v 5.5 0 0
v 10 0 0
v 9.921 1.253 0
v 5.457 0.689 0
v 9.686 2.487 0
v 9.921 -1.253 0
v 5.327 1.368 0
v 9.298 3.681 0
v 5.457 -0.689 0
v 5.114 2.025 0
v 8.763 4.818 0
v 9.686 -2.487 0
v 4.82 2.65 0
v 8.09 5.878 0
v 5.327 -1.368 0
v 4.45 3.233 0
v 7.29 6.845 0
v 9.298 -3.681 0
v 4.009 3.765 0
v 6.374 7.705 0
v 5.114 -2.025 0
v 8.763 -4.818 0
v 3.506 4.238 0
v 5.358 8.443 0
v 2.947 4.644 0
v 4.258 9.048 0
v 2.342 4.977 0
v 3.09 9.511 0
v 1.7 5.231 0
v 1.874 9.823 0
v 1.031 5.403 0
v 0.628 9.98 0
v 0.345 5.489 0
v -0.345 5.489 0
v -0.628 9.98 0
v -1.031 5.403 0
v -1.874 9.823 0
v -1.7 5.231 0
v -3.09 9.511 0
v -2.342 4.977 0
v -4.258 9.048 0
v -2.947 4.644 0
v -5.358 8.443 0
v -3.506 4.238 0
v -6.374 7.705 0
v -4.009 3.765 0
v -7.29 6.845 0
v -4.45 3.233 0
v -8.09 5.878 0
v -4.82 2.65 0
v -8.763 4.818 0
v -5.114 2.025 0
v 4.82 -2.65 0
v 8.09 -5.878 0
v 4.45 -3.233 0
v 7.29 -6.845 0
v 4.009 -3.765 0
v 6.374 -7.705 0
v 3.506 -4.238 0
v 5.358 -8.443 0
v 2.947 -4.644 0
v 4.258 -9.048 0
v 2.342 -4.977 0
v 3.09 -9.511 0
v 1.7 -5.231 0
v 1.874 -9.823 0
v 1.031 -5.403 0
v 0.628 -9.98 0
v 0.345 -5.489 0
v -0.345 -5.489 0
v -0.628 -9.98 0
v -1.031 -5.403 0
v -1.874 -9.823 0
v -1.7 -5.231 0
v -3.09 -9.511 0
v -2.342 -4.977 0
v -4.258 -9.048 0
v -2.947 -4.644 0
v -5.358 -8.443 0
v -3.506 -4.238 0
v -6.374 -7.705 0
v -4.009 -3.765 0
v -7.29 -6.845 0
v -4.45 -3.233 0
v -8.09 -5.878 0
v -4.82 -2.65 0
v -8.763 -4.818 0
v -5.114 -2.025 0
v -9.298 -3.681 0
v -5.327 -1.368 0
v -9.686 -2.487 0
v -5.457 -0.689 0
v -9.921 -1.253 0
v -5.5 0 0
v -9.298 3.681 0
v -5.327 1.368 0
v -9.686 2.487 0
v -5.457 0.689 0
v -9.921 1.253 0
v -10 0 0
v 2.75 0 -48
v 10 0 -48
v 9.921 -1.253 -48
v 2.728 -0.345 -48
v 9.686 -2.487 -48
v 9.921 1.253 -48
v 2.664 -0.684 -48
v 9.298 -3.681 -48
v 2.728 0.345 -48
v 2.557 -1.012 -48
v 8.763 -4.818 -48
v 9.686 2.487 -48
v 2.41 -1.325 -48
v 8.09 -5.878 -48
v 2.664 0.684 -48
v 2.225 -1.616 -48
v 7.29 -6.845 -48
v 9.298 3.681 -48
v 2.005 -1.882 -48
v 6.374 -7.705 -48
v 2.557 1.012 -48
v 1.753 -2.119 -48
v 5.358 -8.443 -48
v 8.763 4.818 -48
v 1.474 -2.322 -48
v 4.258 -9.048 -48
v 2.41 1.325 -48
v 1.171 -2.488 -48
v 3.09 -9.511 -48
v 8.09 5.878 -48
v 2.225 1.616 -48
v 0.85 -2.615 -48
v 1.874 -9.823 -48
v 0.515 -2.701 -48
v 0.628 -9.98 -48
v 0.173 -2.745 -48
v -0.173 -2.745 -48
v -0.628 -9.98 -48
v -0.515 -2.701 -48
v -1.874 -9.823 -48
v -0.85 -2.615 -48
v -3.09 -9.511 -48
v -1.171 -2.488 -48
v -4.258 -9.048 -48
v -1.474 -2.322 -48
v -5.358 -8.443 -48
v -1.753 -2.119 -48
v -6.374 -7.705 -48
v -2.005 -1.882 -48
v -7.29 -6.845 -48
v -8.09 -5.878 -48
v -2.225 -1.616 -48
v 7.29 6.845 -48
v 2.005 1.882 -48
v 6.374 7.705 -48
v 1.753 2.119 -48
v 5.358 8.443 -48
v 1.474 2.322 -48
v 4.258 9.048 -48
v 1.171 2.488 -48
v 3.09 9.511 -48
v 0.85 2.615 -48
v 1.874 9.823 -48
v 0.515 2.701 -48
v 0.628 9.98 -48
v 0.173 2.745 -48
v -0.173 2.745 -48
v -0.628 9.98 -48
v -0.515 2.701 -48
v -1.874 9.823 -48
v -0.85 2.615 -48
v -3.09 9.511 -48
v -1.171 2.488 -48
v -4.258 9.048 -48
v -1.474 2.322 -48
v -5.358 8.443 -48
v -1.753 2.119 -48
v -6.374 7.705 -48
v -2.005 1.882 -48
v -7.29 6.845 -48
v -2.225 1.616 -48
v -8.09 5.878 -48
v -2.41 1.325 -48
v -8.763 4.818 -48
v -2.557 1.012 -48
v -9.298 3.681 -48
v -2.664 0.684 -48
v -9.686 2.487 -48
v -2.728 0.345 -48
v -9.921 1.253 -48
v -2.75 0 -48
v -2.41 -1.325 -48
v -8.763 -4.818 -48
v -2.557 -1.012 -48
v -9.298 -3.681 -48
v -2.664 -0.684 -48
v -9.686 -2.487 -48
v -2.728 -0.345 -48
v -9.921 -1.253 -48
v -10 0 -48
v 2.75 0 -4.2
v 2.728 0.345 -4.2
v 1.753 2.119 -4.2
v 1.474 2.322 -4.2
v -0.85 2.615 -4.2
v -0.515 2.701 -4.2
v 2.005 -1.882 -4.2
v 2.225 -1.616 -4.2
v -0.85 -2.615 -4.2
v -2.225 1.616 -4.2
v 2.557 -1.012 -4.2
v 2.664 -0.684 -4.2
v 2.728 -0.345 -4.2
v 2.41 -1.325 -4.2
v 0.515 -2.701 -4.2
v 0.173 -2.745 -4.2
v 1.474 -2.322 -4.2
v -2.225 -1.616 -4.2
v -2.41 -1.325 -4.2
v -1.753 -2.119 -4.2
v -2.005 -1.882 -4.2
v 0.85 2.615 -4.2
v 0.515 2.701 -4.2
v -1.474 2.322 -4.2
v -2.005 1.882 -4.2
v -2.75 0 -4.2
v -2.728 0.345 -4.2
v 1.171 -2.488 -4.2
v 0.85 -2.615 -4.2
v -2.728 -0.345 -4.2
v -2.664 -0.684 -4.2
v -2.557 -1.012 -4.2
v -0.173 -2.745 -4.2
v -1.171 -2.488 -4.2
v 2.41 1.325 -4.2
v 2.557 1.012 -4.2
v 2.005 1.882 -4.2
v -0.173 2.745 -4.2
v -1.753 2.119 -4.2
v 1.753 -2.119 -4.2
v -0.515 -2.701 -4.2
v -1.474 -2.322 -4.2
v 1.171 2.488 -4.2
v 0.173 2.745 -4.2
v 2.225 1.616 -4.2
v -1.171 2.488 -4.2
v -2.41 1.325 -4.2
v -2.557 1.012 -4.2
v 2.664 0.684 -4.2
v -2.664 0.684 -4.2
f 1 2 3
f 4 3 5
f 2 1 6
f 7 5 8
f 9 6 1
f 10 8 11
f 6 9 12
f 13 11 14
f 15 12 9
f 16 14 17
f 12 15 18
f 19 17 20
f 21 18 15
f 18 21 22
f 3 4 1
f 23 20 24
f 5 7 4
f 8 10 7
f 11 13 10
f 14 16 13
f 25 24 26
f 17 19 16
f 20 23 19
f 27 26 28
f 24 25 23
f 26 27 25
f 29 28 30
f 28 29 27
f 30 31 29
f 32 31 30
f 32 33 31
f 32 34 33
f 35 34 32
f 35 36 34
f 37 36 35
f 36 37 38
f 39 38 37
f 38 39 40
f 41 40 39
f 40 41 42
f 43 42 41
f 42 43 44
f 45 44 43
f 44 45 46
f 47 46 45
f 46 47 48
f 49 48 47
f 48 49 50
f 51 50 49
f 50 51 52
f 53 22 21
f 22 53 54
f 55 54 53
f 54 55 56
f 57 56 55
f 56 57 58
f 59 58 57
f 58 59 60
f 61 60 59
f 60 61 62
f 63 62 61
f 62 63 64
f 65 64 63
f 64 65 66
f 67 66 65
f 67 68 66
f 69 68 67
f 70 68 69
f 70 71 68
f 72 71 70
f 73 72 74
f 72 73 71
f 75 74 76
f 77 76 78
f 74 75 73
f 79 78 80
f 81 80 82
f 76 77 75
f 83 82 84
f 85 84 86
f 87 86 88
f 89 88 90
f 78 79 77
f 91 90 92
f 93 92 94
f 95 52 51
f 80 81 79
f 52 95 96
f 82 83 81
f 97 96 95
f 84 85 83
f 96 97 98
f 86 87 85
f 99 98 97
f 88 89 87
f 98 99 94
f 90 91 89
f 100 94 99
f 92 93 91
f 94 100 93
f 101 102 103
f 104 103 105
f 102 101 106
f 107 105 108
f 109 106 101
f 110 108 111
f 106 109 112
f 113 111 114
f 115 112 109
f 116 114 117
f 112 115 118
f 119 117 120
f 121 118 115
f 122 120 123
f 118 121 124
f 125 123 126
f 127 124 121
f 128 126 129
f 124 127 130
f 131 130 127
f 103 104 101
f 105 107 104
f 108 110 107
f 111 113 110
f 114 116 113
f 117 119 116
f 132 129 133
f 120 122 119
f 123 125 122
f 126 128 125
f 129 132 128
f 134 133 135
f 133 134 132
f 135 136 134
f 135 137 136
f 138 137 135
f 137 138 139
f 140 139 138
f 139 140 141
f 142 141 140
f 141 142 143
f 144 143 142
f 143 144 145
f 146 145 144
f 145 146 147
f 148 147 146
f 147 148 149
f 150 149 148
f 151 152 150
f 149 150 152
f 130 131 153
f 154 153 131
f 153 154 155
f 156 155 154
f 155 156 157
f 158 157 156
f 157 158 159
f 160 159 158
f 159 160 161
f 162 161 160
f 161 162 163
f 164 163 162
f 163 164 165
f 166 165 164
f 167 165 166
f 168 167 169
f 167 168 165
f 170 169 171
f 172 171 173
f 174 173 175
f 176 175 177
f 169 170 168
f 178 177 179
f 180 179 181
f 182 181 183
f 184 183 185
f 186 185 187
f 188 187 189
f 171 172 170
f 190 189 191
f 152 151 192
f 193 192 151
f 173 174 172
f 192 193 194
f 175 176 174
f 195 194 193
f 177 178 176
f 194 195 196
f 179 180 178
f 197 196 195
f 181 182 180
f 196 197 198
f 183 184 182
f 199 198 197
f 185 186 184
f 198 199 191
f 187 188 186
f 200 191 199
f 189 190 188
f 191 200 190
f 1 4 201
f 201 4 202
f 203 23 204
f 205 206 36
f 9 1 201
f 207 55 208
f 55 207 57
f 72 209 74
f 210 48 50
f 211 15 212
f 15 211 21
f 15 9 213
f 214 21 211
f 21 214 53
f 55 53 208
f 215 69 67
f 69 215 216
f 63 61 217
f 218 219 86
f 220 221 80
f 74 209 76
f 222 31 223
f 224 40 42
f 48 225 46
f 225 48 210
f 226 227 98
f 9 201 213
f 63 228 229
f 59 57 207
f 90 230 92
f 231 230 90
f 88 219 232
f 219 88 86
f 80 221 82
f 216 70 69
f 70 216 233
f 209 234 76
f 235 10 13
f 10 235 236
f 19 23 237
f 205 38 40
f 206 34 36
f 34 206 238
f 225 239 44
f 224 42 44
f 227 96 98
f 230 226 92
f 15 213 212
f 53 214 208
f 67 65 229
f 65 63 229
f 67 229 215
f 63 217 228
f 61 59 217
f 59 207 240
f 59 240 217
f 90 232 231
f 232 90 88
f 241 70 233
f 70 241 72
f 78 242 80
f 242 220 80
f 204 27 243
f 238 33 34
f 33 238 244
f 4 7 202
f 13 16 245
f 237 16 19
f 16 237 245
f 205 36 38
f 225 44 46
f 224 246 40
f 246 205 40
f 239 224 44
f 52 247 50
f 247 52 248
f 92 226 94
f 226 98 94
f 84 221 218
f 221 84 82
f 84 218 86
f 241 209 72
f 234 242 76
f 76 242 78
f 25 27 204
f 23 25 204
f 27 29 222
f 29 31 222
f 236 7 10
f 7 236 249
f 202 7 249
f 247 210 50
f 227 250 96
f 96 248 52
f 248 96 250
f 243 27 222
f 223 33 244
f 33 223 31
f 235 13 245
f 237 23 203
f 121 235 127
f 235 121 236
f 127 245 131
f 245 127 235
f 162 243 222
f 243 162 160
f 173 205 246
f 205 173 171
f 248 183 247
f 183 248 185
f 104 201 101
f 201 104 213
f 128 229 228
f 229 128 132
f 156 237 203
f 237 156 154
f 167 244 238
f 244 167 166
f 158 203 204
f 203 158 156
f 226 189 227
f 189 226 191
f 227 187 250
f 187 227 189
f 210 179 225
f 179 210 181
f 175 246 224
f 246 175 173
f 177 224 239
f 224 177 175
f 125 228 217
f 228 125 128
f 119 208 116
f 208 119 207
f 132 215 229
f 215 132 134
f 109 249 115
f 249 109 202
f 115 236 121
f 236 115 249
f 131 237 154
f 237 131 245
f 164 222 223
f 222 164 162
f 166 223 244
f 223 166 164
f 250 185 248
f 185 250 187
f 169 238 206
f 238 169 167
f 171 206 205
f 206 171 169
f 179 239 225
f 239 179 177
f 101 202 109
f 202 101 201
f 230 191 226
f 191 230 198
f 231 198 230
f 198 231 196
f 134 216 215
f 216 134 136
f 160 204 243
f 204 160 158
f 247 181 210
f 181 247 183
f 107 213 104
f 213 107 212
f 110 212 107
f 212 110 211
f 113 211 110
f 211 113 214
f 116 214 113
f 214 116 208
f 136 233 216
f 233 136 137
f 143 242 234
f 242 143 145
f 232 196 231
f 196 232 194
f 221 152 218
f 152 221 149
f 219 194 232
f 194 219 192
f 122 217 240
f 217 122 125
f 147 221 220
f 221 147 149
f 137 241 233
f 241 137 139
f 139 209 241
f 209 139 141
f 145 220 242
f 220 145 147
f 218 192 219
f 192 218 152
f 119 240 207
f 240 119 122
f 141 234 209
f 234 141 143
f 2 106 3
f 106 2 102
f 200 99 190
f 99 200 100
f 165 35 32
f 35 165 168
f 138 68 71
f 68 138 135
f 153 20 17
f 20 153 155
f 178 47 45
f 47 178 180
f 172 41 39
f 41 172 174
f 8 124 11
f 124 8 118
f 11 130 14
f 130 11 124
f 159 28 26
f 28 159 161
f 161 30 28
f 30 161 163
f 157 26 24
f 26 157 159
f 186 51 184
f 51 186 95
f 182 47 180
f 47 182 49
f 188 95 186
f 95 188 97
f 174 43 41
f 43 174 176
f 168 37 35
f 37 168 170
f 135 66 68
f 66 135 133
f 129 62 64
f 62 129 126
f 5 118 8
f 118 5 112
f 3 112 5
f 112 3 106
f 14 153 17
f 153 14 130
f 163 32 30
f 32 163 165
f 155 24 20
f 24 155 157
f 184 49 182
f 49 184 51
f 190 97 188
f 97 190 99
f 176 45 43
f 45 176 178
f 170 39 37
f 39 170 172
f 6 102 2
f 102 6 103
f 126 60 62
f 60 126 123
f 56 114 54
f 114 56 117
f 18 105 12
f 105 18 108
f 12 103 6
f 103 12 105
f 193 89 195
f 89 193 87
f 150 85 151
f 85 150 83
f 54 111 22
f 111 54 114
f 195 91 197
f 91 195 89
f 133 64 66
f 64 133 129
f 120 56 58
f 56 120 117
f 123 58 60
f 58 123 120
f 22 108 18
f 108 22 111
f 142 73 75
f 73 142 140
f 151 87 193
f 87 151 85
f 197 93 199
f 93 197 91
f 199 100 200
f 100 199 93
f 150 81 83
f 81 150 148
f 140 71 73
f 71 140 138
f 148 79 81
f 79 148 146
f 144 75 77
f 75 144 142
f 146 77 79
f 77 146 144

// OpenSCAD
$fn = 50;


difference() {
	union() {
		translate(v = [0, 0, -48.0000000000]) {
			cylinder(h = 48, r = 10.0000000000);
		}
		cylinder(h = 0, r = 19.0000000000);
	}
	union() {
		translate(v = [0, 0, 0]) {
			rotate(a = [0, 0, 0]) {
				difference() {
					union() {
						#translate(v = [0, 0, -48.0000000000]) {
							cylinder(h = 48, r = 2.2500000000);
						}
						#translate(v = [0, 0, -4.2000000000]) {
							cylinder(h = 4.2000000000, r1 = 2.7500000000, r2 = 5.5000000000);
						}
						#translate(v = [0, 0, -48.0000000000]) {
							cylinder(h = 48, r = 2.7500000000);
						}
						#translate(v = [0, 0, -48.0000000000]) {
							cylinder(h = 48, r = 2.2500000000);
						}
					}
					union();
				}
			}
		}
	}
}
